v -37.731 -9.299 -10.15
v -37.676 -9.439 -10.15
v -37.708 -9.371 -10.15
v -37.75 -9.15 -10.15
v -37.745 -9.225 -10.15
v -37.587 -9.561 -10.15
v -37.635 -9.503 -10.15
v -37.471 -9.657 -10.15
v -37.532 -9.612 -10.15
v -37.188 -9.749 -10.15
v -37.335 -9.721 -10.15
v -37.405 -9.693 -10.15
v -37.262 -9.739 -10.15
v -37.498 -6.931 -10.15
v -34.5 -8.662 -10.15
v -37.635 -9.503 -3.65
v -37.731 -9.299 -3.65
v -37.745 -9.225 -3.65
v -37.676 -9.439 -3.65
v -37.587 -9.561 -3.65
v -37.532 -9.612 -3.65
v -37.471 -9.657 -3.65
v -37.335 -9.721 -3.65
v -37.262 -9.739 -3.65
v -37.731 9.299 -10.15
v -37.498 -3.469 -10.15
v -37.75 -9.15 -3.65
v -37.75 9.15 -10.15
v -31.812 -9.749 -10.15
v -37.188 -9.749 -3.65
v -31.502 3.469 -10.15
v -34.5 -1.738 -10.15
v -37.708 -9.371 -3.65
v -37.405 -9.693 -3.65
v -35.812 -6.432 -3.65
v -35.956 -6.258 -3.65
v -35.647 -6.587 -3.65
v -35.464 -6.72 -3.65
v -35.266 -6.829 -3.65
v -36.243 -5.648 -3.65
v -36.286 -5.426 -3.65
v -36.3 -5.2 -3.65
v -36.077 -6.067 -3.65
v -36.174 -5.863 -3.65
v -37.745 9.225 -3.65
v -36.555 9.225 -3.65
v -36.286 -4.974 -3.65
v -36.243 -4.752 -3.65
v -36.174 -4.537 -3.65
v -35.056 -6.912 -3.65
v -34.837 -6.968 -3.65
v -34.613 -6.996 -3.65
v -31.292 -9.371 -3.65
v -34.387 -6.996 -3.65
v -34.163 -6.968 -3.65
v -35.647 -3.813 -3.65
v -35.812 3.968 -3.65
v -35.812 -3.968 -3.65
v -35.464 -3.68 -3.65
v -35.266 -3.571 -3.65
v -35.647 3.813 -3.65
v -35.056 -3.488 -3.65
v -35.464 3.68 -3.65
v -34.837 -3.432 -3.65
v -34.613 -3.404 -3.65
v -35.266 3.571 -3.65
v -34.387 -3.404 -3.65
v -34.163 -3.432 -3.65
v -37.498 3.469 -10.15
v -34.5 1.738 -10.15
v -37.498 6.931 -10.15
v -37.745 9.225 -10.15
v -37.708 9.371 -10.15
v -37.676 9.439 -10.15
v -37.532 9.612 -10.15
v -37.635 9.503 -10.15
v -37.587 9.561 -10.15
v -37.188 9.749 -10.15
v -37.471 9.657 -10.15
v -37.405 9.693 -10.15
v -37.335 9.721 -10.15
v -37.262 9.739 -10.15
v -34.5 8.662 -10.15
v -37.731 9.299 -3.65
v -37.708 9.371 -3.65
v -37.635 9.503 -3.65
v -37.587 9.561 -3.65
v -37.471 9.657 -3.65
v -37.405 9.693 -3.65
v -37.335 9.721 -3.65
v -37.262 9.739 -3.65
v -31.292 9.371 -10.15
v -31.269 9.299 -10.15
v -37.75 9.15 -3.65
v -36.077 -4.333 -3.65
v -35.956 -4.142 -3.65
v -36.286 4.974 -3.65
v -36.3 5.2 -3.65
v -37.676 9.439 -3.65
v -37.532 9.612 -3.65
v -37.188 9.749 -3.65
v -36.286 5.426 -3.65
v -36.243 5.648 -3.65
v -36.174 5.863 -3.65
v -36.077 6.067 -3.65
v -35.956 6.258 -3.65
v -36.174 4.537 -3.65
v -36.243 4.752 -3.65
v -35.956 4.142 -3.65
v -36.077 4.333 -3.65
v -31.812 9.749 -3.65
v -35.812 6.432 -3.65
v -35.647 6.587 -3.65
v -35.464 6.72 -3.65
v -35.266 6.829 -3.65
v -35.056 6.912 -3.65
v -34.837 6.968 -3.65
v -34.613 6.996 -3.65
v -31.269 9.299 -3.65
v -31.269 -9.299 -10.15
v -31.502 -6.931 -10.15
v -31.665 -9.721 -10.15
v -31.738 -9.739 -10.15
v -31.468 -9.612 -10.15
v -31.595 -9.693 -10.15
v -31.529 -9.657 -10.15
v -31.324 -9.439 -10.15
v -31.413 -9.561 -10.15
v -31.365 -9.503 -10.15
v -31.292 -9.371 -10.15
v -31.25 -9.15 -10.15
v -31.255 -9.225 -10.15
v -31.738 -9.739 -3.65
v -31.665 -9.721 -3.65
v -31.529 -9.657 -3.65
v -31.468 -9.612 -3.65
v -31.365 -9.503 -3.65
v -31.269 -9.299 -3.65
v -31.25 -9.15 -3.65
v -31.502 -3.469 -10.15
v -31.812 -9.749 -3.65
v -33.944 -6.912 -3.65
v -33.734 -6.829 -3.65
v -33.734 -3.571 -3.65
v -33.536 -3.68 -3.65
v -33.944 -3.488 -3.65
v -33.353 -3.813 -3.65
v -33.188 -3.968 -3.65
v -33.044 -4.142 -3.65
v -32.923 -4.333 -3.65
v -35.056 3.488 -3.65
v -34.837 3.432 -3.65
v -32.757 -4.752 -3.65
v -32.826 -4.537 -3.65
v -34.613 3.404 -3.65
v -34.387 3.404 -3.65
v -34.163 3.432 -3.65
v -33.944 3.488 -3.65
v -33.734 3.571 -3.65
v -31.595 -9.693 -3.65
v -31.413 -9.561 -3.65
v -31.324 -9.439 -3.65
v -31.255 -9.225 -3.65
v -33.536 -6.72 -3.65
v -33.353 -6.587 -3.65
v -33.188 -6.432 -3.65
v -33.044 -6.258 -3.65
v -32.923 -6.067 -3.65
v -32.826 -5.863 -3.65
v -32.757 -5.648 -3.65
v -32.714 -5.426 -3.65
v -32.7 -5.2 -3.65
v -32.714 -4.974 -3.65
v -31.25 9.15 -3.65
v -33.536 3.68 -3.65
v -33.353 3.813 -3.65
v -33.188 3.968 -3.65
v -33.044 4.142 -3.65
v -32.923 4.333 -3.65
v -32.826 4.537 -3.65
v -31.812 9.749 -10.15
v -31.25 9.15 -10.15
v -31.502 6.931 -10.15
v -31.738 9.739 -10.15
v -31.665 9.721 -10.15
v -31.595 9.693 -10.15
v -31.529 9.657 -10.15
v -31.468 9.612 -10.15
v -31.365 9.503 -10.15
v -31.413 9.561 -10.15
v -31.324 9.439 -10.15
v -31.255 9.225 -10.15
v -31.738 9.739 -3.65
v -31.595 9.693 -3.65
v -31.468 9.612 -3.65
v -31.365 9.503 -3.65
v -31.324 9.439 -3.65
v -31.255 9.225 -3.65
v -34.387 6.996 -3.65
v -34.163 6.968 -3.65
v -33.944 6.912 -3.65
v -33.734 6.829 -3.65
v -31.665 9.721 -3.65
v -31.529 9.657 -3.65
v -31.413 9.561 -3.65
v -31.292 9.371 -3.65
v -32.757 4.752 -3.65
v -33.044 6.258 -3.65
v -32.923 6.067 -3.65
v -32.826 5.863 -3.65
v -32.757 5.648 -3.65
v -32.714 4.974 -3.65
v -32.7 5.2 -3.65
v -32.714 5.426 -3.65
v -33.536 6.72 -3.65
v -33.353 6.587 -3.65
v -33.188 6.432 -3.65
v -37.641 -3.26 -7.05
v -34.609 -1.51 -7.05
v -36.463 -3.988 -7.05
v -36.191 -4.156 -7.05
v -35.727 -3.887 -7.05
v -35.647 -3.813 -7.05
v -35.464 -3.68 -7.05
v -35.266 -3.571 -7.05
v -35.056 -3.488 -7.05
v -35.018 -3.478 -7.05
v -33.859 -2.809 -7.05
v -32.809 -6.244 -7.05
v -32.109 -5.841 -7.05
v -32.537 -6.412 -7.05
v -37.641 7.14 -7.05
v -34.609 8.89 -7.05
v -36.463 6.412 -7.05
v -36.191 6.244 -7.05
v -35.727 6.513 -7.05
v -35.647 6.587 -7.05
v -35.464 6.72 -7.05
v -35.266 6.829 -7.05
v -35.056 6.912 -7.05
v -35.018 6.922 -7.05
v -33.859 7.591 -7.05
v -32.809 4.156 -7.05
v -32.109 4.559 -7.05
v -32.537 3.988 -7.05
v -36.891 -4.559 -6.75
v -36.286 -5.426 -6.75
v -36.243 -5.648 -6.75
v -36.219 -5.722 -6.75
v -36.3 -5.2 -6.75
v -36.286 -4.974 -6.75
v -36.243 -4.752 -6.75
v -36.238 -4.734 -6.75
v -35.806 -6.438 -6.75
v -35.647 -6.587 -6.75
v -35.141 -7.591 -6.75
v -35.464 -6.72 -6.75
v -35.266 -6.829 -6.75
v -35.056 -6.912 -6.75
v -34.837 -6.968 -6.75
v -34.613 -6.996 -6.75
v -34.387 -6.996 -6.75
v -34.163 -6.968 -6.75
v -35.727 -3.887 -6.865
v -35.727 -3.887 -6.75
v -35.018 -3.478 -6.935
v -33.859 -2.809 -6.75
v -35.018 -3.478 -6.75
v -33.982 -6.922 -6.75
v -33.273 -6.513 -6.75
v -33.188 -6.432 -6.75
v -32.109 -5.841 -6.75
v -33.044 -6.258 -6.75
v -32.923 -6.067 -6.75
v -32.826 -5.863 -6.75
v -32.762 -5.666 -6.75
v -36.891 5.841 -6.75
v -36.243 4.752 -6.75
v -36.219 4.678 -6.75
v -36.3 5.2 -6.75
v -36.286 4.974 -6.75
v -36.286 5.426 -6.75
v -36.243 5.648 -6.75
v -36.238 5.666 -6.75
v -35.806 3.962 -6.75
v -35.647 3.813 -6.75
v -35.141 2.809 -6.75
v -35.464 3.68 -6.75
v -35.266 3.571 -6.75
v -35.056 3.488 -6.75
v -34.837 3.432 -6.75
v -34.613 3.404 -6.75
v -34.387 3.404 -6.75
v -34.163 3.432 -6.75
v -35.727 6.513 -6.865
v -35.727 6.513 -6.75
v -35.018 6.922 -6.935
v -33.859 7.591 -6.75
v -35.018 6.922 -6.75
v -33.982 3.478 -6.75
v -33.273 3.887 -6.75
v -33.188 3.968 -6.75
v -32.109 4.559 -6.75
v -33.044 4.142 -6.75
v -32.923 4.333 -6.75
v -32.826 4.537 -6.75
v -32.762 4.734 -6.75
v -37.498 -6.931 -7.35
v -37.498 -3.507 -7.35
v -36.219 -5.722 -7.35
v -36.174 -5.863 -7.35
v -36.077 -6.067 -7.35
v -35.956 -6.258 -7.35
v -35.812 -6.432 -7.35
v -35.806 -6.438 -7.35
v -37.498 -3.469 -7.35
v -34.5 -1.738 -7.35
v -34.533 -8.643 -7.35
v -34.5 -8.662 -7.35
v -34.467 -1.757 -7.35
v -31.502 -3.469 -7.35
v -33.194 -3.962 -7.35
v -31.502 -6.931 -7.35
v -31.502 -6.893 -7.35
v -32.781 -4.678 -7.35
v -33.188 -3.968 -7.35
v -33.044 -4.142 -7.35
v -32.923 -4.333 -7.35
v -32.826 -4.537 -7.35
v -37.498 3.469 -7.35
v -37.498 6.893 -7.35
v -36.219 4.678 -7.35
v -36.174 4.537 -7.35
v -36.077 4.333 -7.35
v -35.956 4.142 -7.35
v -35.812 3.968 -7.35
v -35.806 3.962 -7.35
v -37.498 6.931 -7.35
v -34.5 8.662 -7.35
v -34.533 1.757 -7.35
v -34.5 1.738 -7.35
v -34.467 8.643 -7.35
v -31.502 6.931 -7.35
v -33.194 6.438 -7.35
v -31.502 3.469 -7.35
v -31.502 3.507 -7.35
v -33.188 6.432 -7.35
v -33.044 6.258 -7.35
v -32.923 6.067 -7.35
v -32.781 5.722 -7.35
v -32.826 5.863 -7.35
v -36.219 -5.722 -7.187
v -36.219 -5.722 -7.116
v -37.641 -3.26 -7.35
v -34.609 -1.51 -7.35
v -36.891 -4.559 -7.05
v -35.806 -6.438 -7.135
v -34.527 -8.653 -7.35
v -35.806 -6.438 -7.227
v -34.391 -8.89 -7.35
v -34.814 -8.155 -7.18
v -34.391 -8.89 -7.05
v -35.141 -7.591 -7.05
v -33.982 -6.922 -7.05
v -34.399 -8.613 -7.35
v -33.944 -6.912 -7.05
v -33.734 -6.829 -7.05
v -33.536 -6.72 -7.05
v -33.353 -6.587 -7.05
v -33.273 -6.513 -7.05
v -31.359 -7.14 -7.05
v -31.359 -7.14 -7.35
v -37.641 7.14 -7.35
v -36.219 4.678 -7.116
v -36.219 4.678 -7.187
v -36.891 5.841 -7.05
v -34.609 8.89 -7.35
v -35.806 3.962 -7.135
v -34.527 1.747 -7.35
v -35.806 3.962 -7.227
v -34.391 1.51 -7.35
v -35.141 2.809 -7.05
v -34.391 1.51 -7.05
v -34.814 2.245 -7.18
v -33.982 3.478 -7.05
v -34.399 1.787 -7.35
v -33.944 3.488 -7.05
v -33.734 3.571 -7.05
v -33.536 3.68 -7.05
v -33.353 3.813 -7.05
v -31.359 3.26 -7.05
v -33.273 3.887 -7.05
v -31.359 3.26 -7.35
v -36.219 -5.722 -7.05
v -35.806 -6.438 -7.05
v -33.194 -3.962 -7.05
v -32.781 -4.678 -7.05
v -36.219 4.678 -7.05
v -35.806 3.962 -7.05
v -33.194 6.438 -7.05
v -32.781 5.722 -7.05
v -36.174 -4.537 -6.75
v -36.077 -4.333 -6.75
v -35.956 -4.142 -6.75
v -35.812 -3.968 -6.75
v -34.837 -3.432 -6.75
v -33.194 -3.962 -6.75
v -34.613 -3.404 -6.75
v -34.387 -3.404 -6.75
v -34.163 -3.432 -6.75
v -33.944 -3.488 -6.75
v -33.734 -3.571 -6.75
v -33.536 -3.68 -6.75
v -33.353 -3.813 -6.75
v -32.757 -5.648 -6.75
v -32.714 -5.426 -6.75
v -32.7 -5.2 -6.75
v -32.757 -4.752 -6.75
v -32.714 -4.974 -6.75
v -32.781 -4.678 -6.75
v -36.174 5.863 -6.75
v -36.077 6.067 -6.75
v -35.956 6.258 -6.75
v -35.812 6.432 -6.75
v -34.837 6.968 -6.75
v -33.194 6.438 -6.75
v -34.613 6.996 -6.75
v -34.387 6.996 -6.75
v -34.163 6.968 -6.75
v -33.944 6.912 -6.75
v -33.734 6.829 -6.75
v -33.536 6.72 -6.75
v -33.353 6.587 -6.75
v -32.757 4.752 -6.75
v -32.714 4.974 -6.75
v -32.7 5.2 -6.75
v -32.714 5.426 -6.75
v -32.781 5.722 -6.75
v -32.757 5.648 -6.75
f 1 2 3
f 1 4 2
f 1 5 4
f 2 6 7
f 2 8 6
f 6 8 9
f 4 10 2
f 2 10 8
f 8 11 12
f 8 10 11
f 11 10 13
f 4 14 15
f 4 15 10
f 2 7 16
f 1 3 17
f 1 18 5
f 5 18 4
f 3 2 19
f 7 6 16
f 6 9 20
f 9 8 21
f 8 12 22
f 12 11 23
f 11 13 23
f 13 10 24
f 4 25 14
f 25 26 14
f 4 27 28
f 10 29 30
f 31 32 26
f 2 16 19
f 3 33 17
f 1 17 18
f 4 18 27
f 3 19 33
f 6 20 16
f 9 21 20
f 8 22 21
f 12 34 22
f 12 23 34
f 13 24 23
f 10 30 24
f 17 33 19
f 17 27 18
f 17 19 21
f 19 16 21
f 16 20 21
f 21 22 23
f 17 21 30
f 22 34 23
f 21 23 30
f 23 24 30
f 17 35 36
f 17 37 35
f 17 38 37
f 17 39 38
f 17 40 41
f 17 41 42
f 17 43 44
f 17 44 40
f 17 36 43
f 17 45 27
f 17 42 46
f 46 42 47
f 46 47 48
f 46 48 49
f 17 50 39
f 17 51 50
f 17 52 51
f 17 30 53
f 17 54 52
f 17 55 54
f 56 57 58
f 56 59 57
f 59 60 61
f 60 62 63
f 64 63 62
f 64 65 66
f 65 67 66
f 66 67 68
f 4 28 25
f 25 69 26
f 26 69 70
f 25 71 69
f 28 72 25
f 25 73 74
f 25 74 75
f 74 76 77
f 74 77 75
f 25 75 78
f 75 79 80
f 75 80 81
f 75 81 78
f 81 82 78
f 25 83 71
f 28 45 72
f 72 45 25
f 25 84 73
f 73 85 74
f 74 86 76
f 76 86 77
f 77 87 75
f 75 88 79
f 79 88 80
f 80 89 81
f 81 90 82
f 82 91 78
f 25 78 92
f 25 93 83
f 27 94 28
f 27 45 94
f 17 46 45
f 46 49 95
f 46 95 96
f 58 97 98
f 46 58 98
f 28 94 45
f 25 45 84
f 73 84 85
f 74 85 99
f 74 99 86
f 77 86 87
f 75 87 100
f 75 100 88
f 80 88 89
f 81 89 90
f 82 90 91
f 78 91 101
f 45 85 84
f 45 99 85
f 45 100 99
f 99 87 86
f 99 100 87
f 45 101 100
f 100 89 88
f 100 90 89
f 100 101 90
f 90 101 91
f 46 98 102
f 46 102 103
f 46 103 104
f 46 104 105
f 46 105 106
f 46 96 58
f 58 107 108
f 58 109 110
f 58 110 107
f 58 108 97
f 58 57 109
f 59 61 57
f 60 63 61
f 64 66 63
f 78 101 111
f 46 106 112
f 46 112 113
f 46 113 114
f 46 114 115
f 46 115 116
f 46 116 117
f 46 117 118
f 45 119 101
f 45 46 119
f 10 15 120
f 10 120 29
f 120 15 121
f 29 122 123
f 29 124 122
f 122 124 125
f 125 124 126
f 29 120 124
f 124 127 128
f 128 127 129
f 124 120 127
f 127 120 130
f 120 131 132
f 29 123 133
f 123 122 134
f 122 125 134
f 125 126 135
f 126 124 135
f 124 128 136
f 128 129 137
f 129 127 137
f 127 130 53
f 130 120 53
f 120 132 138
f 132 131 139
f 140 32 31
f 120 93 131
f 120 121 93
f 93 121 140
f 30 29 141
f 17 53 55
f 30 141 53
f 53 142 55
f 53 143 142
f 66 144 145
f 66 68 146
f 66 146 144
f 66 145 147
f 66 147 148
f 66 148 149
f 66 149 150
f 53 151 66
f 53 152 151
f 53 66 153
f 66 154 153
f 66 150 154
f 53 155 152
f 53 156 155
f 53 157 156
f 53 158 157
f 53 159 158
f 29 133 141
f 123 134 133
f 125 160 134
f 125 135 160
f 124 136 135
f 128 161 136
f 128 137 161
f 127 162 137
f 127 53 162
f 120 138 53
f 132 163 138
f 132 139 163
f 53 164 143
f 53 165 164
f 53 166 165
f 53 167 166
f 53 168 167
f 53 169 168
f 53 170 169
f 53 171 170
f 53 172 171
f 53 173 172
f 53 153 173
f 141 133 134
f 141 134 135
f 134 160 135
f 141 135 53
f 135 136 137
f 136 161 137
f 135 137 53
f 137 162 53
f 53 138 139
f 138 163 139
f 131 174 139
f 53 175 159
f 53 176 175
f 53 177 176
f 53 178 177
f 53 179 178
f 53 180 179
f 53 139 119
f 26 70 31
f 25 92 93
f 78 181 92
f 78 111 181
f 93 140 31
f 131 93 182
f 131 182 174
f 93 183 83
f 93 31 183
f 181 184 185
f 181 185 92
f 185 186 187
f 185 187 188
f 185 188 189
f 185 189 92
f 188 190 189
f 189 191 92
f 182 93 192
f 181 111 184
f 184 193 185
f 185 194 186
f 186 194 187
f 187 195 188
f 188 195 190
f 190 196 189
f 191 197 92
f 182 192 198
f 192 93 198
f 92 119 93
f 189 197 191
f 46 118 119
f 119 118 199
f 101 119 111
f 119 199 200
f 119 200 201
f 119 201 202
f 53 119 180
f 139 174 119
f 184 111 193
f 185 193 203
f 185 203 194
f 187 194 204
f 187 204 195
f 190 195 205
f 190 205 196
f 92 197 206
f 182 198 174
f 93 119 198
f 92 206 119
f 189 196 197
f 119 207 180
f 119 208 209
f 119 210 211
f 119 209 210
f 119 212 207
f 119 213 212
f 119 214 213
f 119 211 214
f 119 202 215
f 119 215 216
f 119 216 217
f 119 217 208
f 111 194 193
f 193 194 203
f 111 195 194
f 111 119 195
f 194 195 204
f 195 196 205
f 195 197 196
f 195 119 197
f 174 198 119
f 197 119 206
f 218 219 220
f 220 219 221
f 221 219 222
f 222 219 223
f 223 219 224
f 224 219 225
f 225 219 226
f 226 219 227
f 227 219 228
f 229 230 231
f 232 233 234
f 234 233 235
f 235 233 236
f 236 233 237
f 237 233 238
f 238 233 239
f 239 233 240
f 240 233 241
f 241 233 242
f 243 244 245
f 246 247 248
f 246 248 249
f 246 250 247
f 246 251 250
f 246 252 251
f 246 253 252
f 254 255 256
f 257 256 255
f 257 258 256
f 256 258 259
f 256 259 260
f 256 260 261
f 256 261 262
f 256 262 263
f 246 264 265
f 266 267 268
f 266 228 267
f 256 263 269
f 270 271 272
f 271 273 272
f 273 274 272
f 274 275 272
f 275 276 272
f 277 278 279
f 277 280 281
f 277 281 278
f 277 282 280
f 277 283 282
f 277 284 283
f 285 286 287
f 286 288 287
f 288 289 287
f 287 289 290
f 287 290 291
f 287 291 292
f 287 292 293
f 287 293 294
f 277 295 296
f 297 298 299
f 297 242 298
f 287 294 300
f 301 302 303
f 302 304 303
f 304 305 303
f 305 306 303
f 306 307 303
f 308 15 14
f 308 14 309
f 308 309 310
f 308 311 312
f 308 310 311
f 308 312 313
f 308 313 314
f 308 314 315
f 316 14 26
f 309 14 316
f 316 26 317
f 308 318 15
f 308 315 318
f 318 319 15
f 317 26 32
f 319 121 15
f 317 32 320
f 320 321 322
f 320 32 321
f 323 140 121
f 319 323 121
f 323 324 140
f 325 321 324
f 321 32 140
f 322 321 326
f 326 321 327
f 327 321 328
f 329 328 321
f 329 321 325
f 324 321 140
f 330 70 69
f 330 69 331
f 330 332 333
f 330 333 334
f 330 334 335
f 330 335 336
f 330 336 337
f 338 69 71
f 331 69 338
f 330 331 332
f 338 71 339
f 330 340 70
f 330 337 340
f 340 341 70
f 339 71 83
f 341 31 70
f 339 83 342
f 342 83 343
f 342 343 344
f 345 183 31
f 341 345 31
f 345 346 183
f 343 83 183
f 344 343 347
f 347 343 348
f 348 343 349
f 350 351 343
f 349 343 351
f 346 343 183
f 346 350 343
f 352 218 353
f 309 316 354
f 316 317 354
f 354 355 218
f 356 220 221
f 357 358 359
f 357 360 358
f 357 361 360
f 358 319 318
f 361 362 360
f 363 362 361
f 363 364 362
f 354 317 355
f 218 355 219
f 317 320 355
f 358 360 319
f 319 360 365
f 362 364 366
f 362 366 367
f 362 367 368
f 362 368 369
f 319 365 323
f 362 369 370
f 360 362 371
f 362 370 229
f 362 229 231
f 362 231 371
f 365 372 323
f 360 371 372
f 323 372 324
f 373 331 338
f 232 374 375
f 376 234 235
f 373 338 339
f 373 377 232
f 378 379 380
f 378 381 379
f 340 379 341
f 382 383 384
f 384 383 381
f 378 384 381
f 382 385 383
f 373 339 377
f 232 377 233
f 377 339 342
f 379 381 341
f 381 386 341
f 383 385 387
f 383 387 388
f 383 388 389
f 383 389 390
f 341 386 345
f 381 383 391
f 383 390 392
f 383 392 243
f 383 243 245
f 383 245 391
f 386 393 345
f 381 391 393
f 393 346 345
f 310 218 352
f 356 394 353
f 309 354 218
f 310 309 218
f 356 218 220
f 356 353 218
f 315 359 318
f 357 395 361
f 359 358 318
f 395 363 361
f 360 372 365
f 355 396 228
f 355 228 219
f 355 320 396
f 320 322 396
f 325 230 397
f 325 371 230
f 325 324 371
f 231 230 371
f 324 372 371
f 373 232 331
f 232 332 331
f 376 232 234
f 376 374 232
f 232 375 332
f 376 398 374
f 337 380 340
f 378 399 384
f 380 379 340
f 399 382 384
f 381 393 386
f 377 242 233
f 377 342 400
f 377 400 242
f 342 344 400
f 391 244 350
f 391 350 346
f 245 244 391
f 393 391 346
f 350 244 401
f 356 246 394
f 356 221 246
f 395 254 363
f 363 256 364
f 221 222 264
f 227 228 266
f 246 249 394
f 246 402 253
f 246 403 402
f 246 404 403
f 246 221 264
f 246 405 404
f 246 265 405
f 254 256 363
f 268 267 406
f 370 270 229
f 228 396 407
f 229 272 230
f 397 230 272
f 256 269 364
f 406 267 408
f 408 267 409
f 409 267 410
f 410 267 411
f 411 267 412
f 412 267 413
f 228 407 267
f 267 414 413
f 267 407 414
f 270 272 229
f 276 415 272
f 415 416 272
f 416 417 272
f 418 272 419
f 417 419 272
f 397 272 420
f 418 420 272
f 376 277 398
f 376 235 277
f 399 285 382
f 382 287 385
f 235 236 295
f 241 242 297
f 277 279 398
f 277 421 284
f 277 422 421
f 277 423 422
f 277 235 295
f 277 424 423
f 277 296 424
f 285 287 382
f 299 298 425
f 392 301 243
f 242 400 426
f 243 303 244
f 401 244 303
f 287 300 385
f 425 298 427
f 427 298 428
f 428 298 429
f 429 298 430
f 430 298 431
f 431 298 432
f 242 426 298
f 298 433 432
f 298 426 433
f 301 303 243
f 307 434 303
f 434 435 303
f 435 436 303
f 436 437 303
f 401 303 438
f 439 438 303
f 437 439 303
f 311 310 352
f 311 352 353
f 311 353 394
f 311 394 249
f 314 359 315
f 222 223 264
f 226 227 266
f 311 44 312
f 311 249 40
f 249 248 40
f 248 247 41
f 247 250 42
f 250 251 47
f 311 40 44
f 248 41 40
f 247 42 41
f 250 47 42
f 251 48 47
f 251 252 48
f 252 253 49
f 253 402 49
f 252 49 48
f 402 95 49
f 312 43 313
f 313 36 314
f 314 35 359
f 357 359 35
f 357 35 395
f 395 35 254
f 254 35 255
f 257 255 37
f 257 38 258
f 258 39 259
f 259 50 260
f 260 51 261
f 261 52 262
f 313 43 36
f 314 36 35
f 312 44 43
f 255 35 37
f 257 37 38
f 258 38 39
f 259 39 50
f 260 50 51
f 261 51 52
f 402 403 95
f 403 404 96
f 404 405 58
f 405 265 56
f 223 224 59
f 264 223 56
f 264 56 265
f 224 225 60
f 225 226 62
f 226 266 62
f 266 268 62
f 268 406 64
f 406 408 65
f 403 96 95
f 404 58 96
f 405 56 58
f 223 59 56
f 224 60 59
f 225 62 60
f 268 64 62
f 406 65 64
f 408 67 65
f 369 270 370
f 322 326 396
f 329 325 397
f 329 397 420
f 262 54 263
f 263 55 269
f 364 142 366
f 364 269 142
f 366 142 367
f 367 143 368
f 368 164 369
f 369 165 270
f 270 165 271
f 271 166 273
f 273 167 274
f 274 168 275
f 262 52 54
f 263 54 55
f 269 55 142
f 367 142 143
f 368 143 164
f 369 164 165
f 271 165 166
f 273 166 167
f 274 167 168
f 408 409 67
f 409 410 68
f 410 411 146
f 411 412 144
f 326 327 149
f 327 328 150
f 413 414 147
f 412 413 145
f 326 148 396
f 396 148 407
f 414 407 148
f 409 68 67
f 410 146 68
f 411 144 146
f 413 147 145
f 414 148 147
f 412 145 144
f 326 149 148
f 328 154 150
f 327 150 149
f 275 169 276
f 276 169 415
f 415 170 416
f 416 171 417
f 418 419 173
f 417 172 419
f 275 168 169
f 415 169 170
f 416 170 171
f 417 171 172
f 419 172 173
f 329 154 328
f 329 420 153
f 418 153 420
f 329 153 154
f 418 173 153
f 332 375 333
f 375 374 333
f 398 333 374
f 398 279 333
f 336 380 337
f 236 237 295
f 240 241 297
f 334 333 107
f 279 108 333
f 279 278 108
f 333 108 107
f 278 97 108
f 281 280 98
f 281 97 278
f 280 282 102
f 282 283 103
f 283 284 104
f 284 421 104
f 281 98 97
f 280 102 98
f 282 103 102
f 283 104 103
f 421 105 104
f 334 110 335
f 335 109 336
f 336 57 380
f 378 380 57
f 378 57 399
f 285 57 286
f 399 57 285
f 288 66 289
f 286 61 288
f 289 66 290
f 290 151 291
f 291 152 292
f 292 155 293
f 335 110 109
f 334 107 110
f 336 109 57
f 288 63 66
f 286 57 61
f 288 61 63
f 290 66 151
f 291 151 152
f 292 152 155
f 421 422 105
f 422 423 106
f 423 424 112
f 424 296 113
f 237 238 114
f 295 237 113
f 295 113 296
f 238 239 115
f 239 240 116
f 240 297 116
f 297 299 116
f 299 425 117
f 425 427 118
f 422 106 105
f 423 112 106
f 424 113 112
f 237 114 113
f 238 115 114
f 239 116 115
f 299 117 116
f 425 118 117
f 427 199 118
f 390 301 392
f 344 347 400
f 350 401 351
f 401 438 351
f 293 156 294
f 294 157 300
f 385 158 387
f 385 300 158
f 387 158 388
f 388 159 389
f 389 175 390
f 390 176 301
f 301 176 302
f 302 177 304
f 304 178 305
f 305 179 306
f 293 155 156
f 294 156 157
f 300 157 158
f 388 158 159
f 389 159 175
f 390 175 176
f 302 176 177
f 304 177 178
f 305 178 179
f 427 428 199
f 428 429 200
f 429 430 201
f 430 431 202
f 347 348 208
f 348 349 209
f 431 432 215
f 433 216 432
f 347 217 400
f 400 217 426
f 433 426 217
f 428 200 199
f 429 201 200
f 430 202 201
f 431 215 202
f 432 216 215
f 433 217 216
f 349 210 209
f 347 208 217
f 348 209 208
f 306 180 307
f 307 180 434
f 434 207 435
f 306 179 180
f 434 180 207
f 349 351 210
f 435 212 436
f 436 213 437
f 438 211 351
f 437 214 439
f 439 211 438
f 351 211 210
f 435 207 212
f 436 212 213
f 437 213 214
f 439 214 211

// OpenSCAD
$fn = 50;

difference() {
	union() {
		translate(v = [-34.5, 0, -10.15]) {
			hull() {
				translate(v = [-2.65, 9.15, 0]) {
					cylinder(h = 6.5, r = 0.6);
				}
				translate(v = [2.65, 9.15, 0]) {
					cylinder(h = 6.5, r = 0.6);
				}
				translate(v = [-2.65, -9.15, 0]) {
					cylinder(h = 6.5, r = 0.6);
				}
				translate(v = [2.65, -9.15, 0]) {
					cylinder(h = 6.5, r = 0.6);
				}
			}
		}
	}
	union() {
		translate(v = [-34.5, -5.2, -7.3500000000000005]) {
			rotate(a = [180, 0, 30]) {
				difference() {
					union() {
						translate(v = [-1.75, -3.25, -0.3]) {
							cube(size = [3.5, 6.5, 0.3]);
						}
						translate(v = [-1.75, -1.75, -0.6]) {
							cube(size = [3.5, 3.5, 0.3]);
						}
						translate(v = [-1.75, -3.25, 52.8]) {
							cube(size = [3.5, 6.5, 0.3]);
						}
						translate(v = [-1.75, -1.75, 53.099999999999994]) {
							cube(size = [3.5, 3.5, 0.3]);
						}
						linear_extrude(height = 102.8) {
							polygon(points = [[3.4619999999999997, 0.0], [1.7310000000000003, 2.9981799479017264], [-1.7309999999999992, 2.9981799479017264], [-3.4619999999999997, 4.2397272186481365e-16], [-1.7310000000000014, -2.998179947901726], [1.7309999999999977, -2.9981799479017277]]);
						}
						translate(v = [-1.75, -3.25, -0.3]) {
							cube(size = [3.5, 6.5, 0.3]);
						}
						translate(v = [-1.75, -1.75, -0.6]) {
							cube(size = [3.5, 3.5, 0.3]);
						}
						translate(v = [-1.75, -3.25, 102.8]) {
							cube(size = [3.5, 6.5, 0.3]);
						}
						translate(v = [-1.75, -1.75, 103.1]) {
							cube(size = [3.5, 3.5, 0.3]);
						}
						translate(v = [-1.75, -3.25, -0.3]) {
							cube(size = [3.5, 6.5, 0.3]);
						}
						translate(v = [-1.75, -1.75, -0.6]) {
							cube(size = [3.5, 3.5, 0.3]);
						}
						translate(v = [-1.75, -3.25, 152.8]) {
							cube(size = [3.5, 6.5, 0.3]);
						}
						translate(v = [-1.75, -1.75, 153.10000000000002]) {
							cube(size = [3.5, 3.5, 0.3]);
						}
					}
					union();
				}
			}
		}
		translate(v = [-34.5, 5.2, -7.3500000000000005]) {
			rotate(a = [180, 0, 30]) {
				difference() {
					union() {
						translate(v = [-1.75, -3.25, -0.3]) {
							cube(size = [3.5, 6.5, 0.3]);
						}
						translate(v = [-1.75, -1.75, -0.6]) {
							cube(size = [3.5, 3.5, 0.3]);
						}
						translate(v = [-1.75, -3.25, 52.8]) {
							cube(size = [3.5, 6.5, 0.3]);
						}
						translate(v = [-1.75, -1.75, 53.099999999999994]) {
							cube(size = [3.5, 3.5, 0.3]);
						}
						linear_extrude(height = 102.8) {
							polygon(points = [[3.4619999999999997, 0.0], [1.7310000000000003, 2.9981799479017264], [-1.7309999999999992, 2.9981799479017264], [-3.4619999999999997, 4.2397272186481365e-16], [-1.7310000000000014, -2.998179947901726], [1.7309999999999977, -2.9981799479017277]]);
						}
						translate(v = [-1.75, -3.25, -0.3]) {
							cube(size = [3.5, 6.5, 0.3]);
						}
						translate(v = [-1.75, -1.75, -0.6]) {
							cube(size = [3.5, 3.5, 0.3]);
						}
						translate(v = [-1.75, -3.25, 102.8]) {
							cube(size = [3.5, 6.5, 0.3]);
						}
						translate(v = [-1.75, -1.75, 103.1]) {
							cube(size = [3.5, 3.5, 0.3]);
						}
						translate(v = [-1.75, -3.25, -0.3]) {
							cube(size = [3.5, 6.5, 0.3]);
						}
						translate(v = [-1.75, -1.75, -0.6]) {
							cube(size = [3.5, 3.5, 0.3]);
						}
						translate(v = [-1.75, -3.25, 152.8]) {
							cube(size = [3.5, 6.5, 0.3]);
						}
						translate(v = [-1.75, -1.75, 153.10000000000002]) {
							cube(size = [3.5, 3.5, 0.3]);
						}
					}
					union();
				}
			}
		}
		translate(v = [-34.5, -5.2, -11.15]) {
			cylinder(h = 8.5, r = 1.8);
		}
		translate(v = [-34.5, 5.2, -11.15]) {
			cylinder(h = 8.5, r = 1.8);
		}
	}
}
